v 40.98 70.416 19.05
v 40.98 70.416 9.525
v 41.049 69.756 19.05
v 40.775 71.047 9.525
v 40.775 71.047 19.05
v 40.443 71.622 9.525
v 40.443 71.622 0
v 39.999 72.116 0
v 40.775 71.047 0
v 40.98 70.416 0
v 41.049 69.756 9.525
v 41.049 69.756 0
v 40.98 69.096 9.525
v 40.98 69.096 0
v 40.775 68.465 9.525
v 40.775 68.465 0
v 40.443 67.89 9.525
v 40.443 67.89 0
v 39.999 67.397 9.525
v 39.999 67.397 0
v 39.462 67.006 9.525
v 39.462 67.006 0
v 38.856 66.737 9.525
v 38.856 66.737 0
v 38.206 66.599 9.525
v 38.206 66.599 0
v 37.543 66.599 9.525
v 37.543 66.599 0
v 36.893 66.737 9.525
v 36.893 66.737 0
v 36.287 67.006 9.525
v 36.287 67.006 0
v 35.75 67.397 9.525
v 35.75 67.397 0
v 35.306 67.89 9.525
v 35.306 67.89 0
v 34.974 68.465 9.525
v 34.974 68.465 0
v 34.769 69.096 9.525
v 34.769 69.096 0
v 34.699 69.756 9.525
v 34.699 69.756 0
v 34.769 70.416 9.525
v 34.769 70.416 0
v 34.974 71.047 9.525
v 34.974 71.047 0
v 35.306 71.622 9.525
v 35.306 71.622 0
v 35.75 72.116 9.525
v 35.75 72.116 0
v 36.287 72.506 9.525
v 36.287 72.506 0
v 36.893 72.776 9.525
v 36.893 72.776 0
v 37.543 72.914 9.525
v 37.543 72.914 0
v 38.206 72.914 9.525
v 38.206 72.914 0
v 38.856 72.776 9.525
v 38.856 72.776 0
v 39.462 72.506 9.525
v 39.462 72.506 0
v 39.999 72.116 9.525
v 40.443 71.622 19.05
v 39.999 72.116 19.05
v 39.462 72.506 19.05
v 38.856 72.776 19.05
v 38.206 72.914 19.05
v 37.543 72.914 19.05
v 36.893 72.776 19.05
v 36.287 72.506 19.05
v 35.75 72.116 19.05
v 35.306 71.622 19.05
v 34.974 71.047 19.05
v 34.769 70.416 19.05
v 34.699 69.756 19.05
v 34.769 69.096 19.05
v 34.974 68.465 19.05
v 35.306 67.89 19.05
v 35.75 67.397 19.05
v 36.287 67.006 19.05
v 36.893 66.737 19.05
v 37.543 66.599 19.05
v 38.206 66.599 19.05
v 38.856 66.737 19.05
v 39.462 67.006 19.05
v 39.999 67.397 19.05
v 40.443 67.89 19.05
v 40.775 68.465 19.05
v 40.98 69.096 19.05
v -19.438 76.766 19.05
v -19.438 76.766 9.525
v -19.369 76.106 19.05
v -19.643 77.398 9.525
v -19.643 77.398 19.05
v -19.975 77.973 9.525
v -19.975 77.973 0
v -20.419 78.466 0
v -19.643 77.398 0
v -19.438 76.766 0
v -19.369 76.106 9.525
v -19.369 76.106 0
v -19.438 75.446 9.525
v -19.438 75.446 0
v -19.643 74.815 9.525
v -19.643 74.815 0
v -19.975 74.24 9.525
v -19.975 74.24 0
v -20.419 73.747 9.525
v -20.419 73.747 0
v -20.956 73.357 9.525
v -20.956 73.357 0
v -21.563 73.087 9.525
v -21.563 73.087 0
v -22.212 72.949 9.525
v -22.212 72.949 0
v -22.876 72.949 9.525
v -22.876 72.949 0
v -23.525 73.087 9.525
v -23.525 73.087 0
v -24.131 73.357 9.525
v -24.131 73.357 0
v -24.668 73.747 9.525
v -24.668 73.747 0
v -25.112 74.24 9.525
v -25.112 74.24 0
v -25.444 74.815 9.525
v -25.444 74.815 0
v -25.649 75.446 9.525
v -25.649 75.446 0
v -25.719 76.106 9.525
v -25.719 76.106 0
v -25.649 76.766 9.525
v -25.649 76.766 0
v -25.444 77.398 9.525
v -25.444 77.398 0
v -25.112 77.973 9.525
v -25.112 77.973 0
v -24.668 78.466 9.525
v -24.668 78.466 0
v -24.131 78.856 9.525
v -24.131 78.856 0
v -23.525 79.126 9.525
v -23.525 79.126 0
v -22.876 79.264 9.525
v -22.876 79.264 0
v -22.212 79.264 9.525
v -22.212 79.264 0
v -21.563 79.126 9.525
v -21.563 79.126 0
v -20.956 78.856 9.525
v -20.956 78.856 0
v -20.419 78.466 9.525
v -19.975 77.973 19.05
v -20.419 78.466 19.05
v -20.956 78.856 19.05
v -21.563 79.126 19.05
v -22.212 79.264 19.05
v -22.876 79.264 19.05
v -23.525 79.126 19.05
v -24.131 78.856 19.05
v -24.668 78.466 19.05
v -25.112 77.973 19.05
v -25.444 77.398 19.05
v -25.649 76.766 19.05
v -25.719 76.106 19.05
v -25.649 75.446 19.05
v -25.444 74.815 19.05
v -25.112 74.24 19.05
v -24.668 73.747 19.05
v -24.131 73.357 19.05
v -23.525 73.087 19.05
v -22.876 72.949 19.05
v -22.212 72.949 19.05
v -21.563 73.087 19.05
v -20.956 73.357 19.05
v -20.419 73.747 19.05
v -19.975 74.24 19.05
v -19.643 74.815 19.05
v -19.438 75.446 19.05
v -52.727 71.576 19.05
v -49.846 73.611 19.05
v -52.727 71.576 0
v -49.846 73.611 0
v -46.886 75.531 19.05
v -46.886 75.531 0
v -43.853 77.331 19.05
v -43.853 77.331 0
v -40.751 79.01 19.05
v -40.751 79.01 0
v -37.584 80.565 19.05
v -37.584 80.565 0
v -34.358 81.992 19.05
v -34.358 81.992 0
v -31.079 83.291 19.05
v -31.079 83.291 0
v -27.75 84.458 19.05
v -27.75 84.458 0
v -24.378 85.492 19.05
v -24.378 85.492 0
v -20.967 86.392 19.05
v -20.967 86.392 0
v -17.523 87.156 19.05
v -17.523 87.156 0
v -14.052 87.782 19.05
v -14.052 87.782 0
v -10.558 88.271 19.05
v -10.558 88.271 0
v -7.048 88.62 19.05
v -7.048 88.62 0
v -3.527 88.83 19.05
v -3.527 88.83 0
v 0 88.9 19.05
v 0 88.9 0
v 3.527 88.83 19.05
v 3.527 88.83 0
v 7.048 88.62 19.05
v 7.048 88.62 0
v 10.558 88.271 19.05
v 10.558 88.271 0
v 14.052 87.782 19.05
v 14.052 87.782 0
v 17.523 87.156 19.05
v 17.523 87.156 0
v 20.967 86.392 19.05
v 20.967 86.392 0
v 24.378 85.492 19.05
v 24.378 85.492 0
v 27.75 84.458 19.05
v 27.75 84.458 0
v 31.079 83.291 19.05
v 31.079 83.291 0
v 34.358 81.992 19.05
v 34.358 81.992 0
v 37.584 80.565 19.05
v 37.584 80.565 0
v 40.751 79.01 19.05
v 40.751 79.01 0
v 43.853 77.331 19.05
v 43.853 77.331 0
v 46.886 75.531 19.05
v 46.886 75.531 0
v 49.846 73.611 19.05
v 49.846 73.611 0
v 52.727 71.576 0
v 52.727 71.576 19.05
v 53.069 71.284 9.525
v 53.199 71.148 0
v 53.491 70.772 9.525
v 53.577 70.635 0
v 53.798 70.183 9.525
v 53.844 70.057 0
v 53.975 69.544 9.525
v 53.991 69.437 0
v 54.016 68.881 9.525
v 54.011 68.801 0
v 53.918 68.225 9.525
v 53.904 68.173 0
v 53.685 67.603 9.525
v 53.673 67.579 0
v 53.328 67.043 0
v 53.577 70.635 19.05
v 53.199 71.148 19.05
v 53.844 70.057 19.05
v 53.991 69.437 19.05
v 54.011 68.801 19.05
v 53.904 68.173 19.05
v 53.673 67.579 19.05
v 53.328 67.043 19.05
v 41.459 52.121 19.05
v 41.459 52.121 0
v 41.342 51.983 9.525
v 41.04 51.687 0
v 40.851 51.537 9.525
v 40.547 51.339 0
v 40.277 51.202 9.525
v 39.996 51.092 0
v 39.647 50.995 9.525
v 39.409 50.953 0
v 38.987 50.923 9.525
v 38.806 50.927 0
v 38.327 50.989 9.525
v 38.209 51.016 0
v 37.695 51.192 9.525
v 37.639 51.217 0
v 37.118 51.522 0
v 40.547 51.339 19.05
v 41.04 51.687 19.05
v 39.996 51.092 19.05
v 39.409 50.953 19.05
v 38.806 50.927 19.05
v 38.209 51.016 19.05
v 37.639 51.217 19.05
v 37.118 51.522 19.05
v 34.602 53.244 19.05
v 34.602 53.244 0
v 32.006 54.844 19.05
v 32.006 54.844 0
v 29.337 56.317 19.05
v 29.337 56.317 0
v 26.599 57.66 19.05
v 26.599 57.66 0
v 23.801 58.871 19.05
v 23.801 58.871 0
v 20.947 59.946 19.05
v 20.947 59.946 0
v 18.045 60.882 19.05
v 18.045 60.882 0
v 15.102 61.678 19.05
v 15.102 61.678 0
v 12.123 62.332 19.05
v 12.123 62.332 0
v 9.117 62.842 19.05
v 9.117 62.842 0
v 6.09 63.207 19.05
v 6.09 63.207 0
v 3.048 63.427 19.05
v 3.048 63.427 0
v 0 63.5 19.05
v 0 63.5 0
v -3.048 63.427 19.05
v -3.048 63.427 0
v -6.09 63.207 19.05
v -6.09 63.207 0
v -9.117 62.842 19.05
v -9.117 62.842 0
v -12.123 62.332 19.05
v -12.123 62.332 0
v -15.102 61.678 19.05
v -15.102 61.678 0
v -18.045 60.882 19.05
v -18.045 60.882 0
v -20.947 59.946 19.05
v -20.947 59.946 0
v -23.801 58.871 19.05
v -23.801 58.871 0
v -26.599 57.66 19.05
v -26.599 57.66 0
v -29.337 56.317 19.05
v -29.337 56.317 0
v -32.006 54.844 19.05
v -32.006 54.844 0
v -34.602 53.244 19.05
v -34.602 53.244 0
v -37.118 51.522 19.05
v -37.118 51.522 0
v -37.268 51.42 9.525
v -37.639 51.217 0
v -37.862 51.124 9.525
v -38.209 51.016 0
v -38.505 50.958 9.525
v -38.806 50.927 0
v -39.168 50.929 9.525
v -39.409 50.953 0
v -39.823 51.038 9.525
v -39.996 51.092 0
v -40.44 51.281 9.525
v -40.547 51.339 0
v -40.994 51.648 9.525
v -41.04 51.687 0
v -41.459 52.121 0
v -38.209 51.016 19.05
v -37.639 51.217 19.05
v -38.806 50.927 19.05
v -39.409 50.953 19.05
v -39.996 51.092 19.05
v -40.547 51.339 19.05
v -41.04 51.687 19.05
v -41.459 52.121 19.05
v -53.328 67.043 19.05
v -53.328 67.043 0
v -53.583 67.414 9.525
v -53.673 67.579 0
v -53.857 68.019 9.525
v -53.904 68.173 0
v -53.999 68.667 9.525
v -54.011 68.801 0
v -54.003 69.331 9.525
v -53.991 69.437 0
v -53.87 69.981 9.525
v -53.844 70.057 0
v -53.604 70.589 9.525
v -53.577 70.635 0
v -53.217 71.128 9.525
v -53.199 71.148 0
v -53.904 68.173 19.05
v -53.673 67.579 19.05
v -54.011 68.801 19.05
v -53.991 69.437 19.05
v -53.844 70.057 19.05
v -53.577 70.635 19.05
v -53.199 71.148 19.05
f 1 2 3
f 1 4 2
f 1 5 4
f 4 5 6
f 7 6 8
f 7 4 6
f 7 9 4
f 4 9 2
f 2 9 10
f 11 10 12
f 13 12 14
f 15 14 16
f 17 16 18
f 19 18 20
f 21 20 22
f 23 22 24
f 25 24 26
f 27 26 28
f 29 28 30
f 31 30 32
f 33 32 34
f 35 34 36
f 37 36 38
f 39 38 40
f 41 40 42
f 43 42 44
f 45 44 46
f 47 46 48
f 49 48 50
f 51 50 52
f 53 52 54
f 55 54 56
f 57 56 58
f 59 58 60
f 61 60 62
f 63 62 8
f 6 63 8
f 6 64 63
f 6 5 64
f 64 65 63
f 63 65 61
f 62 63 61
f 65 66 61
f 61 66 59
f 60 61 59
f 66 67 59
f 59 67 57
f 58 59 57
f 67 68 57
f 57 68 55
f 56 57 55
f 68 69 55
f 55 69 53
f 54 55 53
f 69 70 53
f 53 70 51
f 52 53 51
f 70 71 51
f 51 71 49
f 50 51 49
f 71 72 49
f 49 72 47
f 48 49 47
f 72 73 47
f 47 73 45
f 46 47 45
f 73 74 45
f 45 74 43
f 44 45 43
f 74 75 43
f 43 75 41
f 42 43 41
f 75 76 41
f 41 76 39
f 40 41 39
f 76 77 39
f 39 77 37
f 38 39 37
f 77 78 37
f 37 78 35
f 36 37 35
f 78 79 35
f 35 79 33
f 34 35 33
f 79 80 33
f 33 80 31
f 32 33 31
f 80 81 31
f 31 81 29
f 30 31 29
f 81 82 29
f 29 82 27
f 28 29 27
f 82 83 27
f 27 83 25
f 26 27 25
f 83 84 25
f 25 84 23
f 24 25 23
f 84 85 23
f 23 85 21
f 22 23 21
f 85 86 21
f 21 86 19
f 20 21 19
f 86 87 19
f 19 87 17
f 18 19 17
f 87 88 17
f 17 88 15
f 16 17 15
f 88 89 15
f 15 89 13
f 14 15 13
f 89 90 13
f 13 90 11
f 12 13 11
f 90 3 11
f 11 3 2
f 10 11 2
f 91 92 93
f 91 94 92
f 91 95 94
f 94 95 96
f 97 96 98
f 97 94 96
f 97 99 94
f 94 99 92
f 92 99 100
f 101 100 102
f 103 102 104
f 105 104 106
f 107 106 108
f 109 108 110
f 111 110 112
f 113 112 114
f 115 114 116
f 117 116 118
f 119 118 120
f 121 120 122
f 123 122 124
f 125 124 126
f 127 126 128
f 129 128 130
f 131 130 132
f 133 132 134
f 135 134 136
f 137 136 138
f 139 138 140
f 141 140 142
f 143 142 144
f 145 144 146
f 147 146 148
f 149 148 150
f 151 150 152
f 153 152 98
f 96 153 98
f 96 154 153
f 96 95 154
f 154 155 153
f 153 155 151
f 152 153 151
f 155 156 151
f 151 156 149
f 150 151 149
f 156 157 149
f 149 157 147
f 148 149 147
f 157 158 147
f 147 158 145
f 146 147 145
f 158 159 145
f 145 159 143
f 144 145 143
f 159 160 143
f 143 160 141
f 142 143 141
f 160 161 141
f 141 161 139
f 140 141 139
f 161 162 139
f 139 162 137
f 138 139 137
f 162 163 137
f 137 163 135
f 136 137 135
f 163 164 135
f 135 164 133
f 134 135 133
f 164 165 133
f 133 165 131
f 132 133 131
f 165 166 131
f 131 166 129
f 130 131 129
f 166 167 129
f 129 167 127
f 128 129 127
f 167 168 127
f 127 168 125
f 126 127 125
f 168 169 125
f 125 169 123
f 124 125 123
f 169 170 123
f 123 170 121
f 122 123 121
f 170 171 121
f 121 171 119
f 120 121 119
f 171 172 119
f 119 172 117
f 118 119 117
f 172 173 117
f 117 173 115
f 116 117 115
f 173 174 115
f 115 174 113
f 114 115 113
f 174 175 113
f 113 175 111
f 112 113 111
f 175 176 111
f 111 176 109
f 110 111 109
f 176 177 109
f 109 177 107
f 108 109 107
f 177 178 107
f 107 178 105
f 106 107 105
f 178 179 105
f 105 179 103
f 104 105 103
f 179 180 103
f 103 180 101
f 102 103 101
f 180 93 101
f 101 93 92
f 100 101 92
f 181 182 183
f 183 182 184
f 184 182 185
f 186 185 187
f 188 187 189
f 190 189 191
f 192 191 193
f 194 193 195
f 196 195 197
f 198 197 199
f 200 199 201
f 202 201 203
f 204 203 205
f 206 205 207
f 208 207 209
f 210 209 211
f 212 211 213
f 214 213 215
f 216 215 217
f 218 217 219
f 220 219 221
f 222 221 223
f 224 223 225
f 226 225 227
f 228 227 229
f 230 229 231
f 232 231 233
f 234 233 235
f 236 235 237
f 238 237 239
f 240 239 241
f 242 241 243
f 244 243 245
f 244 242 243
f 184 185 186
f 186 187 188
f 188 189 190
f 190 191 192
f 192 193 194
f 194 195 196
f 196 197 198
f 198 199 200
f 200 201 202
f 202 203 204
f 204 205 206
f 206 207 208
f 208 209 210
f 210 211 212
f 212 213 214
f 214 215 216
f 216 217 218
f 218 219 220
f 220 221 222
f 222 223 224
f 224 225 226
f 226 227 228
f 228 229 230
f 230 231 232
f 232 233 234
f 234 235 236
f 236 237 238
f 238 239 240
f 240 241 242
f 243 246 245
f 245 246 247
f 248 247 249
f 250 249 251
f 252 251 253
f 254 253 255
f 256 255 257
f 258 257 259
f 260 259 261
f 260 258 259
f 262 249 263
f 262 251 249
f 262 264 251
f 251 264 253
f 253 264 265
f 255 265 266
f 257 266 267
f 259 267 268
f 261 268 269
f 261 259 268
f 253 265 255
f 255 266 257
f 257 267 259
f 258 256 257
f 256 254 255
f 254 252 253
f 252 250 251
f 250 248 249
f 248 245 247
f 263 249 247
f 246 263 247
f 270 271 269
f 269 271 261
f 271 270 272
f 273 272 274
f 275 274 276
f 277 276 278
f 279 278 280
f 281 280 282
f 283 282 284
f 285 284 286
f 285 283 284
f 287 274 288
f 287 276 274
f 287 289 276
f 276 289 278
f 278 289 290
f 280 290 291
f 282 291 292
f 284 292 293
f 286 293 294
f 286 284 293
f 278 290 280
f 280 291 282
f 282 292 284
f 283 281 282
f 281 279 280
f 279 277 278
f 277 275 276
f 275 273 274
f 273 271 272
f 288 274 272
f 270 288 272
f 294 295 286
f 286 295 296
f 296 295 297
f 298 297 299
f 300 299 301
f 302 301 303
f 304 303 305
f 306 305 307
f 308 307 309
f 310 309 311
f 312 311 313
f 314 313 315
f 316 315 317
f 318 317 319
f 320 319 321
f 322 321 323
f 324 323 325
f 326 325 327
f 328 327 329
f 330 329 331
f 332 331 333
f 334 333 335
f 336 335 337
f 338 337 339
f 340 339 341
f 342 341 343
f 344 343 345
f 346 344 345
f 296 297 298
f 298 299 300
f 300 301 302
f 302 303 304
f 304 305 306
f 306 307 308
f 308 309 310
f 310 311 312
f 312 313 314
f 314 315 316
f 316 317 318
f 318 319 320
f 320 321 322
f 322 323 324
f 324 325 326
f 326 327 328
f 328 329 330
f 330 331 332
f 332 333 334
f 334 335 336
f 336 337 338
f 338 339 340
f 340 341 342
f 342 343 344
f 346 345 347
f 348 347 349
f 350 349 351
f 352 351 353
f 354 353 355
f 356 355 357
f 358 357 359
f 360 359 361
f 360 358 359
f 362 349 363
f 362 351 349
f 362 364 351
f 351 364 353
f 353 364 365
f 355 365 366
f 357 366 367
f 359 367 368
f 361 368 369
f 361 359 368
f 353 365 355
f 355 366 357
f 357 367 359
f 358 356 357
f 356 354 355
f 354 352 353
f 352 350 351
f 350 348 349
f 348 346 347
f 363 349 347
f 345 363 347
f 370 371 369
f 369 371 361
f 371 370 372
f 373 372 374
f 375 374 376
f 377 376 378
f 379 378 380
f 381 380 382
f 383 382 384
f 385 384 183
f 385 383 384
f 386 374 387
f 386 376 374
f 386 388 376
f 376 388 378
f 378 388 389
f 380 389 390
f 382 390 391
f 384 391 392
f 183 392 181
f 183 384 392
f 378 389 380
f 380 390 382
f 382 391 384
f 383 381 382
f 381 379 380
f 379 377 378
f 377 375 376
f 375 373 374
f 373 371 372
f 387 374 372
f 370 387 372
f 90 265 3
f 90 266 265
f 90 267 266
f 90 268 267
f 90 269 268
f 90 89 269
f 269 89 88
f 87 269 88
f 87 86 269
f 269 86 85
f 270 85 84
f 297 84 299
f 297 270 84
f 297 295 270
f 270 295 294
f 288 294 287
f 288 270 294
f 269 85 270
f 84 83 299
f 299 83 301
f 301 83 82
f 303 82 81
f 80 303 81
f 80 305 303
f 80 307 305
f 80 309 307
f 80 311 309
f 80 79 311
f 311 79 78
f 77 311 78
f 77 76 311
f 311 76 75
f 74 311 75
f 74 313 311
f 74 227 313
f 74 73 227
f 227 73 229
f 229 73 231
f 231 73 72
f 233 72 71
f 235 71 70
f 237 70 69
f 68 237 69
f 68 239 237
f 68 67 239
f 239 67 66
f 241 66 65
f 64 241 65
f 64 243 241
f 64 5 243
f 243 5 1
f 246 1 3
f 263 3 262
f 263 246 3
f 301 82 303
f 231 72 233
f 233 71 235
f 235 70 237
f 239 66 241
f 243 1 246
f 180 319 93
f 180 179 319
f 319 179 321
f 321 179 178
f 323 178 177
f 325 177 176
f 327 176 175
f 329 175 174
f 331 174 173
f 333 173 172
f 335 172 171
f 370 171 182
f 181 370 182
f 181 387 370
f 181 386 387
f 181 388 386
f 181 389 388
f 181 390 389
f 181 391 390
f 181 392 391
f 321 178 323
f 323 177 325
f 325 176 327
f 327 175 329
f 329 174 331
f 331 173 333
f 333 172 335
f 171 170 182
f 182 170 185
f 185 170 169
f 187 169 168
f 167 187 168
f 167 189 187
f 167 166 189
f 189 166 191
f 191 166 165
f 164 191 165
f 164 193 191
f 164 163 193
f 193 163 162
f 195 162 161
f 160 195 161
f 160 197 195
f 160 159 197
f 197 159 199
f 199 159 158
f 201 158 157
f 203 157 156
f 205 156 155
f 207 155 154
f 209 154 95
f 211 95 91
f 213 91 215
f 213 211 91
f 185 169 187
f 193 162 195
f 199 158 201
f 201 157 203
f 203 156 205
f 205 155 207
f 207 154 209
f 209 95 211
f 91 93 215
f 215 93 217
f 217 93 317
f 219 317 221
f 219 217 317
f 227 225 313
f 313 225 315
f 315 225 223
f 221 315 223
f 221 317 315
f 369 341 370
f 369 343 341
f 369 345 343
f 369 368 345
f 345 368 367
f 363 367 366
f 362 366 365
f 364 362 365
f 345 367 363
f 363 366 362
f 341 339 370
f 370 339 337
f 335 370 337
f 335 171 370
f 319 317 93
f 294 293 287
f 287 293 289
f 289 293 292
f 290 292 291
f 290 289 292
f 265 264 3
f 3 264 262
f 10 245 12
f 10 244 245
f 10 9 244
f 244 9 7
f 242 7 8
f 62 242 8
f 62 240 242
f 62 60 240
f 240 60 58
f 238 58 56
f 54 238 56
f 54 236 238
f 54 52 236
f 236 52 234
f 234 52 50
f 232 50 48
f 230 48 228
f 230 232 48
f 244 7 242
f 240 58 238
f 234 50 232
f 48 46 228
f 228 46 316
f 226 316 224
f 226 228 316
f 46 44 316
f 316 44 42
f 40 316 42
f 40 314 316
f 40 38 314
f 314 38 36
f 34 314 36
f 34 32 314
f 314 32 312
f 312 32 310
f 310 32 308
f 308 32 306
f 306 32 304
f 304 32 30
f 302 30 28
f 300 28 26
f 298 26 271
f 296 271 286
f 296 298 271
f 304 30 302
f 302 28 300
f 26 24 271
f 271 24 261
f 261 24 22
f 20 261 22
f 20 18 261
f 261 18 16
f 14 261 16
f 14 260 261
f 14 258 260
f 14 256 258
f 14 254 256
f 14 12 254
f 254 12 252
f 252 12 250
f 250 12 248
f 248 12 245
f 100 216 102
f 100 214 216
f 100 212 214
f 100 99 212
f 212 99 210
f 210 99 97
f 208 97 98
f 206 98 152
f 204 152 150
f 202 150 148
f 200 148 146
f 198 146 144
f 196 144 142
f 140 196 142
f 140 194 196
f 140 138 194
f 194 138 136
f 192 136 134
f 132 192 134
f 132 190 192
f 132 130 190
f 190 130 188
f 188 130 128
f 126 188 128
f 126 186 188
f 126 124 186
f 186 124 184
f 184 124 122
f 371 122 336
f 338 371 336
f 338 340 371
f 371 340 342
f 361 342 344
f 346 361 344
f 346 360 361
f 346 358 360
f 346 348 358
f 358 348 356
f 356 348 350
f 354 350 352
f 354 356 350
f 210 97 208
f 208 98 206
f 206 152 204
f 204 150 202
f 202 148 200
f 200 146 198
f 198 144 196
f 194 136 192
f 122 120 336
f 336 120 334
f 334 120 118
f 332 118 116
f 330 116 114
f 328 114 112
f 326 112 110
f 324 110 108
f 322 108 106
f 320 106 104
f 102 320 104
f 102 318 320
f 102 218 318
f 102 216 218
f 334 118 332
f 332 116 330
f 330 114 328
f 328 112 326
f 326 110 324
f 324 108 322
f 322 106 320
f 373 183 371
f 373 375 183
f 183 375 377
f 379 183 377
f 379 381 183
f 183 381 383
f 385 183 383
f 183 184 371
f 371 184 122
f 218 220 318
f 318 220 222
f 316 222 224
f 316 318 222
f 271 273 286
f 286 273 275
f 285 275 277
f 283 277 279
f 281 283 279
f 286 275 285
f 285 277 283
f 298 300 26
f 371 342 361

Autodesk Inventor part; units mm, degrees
ref_plane "YZ Plane" through (0, 0, 0) normal (1, 0, 0) x (0, 1, 0)
ref_plane "XZ Plane" through (0, 0, 0) normal (0, 1, 0) x (-1, 0, 0)
ref_plane "XY Plane" through (0, 0, 0) normal (0, 0, 1) x (1, 0, 0)
sketch "Sketch1" plane through (0, 0, 0) normal (0, 0, 1) x (1, 0, 0)
  arc A0 (37.1184, 51.5216) -> (-37.1184, 51.5216) centre (0, 0) ccw
  arc A1 (37.8745, 69.7561) -> (-22.5437, 76.1063) centre (0, 0) ccw construction
  arc A2 (52.7268, 71.5758) -> (-52.7268, 71.5758) centre (0, 0) ccw
  circle A3 centre (-22.5437, 76.1063) radius 3.175
  circle A4 centre (37.8745, 69.7561) radius 3.175
  line L0 (37.8745, 69.7561) -> (0, 0) construction
  line L1 (0, 0) -> (-22.5437, 76.1063) construction
  line L2 (0, 79.375) -> (0, 0) construction
  line L3 (-22.5437, 76.1063) -> (0, 79.375) construction
  line L4 (0, 79.375) -> (37.8745, 69.7561) construction
  line L5 (-53.3285, 67.0431) -> (-41.4591, 52.1212)
  line L6 (41.4591, 52.1212) -> (53.3285, 67.0431)
  line L7 (-39.5297, 49.6956) -> (0, 0) construction
  line L8 (0, 0) -> (39.5297, 49.6956) construction
  line L9 (-39.5297, 49.6956) -> (0, 63.5) construction
  line L10 (0, 63.5) -> (39.5297, 49.6956) construction
  arc A5 (-52.7268, 71.5758) -> (-53.3285, 67.0431) centre (-50.8437, 69.0195) ccw
  arc A6 (-41.4591, 52.1212) -> (-37.1184, 51.5216) centre (-38.9743, 54.0977) ccw
  arc A7 (37.1184, 51.5216) -> (41.4591, 52.1212) centre (38.9743, 54.0977) ccw
  arc A8 (53.3285, 67.0431) -> (52.7268, 71.5758) centre (50.8437, 69.0195) ccw
  point P0 (55.3416, 69.5739)
  point P1 (-55.3416, 69.5739)
  dimension "d0" = 79.375
  dimension "d1" = 88.9
  dimension "d2" = 45
  dimension "d5" = 3.175
  dimension "d8" = 6.35
  dimension "d9" = 63.5
  dimension "d10" = 22
  dimension "d11" = 10
extrude "Extrusion1" add sketch "Sketch1" along normal blind 19.05
properties part number "FlyWheel_Weight_Jan21" material "Aluminum-6061"
